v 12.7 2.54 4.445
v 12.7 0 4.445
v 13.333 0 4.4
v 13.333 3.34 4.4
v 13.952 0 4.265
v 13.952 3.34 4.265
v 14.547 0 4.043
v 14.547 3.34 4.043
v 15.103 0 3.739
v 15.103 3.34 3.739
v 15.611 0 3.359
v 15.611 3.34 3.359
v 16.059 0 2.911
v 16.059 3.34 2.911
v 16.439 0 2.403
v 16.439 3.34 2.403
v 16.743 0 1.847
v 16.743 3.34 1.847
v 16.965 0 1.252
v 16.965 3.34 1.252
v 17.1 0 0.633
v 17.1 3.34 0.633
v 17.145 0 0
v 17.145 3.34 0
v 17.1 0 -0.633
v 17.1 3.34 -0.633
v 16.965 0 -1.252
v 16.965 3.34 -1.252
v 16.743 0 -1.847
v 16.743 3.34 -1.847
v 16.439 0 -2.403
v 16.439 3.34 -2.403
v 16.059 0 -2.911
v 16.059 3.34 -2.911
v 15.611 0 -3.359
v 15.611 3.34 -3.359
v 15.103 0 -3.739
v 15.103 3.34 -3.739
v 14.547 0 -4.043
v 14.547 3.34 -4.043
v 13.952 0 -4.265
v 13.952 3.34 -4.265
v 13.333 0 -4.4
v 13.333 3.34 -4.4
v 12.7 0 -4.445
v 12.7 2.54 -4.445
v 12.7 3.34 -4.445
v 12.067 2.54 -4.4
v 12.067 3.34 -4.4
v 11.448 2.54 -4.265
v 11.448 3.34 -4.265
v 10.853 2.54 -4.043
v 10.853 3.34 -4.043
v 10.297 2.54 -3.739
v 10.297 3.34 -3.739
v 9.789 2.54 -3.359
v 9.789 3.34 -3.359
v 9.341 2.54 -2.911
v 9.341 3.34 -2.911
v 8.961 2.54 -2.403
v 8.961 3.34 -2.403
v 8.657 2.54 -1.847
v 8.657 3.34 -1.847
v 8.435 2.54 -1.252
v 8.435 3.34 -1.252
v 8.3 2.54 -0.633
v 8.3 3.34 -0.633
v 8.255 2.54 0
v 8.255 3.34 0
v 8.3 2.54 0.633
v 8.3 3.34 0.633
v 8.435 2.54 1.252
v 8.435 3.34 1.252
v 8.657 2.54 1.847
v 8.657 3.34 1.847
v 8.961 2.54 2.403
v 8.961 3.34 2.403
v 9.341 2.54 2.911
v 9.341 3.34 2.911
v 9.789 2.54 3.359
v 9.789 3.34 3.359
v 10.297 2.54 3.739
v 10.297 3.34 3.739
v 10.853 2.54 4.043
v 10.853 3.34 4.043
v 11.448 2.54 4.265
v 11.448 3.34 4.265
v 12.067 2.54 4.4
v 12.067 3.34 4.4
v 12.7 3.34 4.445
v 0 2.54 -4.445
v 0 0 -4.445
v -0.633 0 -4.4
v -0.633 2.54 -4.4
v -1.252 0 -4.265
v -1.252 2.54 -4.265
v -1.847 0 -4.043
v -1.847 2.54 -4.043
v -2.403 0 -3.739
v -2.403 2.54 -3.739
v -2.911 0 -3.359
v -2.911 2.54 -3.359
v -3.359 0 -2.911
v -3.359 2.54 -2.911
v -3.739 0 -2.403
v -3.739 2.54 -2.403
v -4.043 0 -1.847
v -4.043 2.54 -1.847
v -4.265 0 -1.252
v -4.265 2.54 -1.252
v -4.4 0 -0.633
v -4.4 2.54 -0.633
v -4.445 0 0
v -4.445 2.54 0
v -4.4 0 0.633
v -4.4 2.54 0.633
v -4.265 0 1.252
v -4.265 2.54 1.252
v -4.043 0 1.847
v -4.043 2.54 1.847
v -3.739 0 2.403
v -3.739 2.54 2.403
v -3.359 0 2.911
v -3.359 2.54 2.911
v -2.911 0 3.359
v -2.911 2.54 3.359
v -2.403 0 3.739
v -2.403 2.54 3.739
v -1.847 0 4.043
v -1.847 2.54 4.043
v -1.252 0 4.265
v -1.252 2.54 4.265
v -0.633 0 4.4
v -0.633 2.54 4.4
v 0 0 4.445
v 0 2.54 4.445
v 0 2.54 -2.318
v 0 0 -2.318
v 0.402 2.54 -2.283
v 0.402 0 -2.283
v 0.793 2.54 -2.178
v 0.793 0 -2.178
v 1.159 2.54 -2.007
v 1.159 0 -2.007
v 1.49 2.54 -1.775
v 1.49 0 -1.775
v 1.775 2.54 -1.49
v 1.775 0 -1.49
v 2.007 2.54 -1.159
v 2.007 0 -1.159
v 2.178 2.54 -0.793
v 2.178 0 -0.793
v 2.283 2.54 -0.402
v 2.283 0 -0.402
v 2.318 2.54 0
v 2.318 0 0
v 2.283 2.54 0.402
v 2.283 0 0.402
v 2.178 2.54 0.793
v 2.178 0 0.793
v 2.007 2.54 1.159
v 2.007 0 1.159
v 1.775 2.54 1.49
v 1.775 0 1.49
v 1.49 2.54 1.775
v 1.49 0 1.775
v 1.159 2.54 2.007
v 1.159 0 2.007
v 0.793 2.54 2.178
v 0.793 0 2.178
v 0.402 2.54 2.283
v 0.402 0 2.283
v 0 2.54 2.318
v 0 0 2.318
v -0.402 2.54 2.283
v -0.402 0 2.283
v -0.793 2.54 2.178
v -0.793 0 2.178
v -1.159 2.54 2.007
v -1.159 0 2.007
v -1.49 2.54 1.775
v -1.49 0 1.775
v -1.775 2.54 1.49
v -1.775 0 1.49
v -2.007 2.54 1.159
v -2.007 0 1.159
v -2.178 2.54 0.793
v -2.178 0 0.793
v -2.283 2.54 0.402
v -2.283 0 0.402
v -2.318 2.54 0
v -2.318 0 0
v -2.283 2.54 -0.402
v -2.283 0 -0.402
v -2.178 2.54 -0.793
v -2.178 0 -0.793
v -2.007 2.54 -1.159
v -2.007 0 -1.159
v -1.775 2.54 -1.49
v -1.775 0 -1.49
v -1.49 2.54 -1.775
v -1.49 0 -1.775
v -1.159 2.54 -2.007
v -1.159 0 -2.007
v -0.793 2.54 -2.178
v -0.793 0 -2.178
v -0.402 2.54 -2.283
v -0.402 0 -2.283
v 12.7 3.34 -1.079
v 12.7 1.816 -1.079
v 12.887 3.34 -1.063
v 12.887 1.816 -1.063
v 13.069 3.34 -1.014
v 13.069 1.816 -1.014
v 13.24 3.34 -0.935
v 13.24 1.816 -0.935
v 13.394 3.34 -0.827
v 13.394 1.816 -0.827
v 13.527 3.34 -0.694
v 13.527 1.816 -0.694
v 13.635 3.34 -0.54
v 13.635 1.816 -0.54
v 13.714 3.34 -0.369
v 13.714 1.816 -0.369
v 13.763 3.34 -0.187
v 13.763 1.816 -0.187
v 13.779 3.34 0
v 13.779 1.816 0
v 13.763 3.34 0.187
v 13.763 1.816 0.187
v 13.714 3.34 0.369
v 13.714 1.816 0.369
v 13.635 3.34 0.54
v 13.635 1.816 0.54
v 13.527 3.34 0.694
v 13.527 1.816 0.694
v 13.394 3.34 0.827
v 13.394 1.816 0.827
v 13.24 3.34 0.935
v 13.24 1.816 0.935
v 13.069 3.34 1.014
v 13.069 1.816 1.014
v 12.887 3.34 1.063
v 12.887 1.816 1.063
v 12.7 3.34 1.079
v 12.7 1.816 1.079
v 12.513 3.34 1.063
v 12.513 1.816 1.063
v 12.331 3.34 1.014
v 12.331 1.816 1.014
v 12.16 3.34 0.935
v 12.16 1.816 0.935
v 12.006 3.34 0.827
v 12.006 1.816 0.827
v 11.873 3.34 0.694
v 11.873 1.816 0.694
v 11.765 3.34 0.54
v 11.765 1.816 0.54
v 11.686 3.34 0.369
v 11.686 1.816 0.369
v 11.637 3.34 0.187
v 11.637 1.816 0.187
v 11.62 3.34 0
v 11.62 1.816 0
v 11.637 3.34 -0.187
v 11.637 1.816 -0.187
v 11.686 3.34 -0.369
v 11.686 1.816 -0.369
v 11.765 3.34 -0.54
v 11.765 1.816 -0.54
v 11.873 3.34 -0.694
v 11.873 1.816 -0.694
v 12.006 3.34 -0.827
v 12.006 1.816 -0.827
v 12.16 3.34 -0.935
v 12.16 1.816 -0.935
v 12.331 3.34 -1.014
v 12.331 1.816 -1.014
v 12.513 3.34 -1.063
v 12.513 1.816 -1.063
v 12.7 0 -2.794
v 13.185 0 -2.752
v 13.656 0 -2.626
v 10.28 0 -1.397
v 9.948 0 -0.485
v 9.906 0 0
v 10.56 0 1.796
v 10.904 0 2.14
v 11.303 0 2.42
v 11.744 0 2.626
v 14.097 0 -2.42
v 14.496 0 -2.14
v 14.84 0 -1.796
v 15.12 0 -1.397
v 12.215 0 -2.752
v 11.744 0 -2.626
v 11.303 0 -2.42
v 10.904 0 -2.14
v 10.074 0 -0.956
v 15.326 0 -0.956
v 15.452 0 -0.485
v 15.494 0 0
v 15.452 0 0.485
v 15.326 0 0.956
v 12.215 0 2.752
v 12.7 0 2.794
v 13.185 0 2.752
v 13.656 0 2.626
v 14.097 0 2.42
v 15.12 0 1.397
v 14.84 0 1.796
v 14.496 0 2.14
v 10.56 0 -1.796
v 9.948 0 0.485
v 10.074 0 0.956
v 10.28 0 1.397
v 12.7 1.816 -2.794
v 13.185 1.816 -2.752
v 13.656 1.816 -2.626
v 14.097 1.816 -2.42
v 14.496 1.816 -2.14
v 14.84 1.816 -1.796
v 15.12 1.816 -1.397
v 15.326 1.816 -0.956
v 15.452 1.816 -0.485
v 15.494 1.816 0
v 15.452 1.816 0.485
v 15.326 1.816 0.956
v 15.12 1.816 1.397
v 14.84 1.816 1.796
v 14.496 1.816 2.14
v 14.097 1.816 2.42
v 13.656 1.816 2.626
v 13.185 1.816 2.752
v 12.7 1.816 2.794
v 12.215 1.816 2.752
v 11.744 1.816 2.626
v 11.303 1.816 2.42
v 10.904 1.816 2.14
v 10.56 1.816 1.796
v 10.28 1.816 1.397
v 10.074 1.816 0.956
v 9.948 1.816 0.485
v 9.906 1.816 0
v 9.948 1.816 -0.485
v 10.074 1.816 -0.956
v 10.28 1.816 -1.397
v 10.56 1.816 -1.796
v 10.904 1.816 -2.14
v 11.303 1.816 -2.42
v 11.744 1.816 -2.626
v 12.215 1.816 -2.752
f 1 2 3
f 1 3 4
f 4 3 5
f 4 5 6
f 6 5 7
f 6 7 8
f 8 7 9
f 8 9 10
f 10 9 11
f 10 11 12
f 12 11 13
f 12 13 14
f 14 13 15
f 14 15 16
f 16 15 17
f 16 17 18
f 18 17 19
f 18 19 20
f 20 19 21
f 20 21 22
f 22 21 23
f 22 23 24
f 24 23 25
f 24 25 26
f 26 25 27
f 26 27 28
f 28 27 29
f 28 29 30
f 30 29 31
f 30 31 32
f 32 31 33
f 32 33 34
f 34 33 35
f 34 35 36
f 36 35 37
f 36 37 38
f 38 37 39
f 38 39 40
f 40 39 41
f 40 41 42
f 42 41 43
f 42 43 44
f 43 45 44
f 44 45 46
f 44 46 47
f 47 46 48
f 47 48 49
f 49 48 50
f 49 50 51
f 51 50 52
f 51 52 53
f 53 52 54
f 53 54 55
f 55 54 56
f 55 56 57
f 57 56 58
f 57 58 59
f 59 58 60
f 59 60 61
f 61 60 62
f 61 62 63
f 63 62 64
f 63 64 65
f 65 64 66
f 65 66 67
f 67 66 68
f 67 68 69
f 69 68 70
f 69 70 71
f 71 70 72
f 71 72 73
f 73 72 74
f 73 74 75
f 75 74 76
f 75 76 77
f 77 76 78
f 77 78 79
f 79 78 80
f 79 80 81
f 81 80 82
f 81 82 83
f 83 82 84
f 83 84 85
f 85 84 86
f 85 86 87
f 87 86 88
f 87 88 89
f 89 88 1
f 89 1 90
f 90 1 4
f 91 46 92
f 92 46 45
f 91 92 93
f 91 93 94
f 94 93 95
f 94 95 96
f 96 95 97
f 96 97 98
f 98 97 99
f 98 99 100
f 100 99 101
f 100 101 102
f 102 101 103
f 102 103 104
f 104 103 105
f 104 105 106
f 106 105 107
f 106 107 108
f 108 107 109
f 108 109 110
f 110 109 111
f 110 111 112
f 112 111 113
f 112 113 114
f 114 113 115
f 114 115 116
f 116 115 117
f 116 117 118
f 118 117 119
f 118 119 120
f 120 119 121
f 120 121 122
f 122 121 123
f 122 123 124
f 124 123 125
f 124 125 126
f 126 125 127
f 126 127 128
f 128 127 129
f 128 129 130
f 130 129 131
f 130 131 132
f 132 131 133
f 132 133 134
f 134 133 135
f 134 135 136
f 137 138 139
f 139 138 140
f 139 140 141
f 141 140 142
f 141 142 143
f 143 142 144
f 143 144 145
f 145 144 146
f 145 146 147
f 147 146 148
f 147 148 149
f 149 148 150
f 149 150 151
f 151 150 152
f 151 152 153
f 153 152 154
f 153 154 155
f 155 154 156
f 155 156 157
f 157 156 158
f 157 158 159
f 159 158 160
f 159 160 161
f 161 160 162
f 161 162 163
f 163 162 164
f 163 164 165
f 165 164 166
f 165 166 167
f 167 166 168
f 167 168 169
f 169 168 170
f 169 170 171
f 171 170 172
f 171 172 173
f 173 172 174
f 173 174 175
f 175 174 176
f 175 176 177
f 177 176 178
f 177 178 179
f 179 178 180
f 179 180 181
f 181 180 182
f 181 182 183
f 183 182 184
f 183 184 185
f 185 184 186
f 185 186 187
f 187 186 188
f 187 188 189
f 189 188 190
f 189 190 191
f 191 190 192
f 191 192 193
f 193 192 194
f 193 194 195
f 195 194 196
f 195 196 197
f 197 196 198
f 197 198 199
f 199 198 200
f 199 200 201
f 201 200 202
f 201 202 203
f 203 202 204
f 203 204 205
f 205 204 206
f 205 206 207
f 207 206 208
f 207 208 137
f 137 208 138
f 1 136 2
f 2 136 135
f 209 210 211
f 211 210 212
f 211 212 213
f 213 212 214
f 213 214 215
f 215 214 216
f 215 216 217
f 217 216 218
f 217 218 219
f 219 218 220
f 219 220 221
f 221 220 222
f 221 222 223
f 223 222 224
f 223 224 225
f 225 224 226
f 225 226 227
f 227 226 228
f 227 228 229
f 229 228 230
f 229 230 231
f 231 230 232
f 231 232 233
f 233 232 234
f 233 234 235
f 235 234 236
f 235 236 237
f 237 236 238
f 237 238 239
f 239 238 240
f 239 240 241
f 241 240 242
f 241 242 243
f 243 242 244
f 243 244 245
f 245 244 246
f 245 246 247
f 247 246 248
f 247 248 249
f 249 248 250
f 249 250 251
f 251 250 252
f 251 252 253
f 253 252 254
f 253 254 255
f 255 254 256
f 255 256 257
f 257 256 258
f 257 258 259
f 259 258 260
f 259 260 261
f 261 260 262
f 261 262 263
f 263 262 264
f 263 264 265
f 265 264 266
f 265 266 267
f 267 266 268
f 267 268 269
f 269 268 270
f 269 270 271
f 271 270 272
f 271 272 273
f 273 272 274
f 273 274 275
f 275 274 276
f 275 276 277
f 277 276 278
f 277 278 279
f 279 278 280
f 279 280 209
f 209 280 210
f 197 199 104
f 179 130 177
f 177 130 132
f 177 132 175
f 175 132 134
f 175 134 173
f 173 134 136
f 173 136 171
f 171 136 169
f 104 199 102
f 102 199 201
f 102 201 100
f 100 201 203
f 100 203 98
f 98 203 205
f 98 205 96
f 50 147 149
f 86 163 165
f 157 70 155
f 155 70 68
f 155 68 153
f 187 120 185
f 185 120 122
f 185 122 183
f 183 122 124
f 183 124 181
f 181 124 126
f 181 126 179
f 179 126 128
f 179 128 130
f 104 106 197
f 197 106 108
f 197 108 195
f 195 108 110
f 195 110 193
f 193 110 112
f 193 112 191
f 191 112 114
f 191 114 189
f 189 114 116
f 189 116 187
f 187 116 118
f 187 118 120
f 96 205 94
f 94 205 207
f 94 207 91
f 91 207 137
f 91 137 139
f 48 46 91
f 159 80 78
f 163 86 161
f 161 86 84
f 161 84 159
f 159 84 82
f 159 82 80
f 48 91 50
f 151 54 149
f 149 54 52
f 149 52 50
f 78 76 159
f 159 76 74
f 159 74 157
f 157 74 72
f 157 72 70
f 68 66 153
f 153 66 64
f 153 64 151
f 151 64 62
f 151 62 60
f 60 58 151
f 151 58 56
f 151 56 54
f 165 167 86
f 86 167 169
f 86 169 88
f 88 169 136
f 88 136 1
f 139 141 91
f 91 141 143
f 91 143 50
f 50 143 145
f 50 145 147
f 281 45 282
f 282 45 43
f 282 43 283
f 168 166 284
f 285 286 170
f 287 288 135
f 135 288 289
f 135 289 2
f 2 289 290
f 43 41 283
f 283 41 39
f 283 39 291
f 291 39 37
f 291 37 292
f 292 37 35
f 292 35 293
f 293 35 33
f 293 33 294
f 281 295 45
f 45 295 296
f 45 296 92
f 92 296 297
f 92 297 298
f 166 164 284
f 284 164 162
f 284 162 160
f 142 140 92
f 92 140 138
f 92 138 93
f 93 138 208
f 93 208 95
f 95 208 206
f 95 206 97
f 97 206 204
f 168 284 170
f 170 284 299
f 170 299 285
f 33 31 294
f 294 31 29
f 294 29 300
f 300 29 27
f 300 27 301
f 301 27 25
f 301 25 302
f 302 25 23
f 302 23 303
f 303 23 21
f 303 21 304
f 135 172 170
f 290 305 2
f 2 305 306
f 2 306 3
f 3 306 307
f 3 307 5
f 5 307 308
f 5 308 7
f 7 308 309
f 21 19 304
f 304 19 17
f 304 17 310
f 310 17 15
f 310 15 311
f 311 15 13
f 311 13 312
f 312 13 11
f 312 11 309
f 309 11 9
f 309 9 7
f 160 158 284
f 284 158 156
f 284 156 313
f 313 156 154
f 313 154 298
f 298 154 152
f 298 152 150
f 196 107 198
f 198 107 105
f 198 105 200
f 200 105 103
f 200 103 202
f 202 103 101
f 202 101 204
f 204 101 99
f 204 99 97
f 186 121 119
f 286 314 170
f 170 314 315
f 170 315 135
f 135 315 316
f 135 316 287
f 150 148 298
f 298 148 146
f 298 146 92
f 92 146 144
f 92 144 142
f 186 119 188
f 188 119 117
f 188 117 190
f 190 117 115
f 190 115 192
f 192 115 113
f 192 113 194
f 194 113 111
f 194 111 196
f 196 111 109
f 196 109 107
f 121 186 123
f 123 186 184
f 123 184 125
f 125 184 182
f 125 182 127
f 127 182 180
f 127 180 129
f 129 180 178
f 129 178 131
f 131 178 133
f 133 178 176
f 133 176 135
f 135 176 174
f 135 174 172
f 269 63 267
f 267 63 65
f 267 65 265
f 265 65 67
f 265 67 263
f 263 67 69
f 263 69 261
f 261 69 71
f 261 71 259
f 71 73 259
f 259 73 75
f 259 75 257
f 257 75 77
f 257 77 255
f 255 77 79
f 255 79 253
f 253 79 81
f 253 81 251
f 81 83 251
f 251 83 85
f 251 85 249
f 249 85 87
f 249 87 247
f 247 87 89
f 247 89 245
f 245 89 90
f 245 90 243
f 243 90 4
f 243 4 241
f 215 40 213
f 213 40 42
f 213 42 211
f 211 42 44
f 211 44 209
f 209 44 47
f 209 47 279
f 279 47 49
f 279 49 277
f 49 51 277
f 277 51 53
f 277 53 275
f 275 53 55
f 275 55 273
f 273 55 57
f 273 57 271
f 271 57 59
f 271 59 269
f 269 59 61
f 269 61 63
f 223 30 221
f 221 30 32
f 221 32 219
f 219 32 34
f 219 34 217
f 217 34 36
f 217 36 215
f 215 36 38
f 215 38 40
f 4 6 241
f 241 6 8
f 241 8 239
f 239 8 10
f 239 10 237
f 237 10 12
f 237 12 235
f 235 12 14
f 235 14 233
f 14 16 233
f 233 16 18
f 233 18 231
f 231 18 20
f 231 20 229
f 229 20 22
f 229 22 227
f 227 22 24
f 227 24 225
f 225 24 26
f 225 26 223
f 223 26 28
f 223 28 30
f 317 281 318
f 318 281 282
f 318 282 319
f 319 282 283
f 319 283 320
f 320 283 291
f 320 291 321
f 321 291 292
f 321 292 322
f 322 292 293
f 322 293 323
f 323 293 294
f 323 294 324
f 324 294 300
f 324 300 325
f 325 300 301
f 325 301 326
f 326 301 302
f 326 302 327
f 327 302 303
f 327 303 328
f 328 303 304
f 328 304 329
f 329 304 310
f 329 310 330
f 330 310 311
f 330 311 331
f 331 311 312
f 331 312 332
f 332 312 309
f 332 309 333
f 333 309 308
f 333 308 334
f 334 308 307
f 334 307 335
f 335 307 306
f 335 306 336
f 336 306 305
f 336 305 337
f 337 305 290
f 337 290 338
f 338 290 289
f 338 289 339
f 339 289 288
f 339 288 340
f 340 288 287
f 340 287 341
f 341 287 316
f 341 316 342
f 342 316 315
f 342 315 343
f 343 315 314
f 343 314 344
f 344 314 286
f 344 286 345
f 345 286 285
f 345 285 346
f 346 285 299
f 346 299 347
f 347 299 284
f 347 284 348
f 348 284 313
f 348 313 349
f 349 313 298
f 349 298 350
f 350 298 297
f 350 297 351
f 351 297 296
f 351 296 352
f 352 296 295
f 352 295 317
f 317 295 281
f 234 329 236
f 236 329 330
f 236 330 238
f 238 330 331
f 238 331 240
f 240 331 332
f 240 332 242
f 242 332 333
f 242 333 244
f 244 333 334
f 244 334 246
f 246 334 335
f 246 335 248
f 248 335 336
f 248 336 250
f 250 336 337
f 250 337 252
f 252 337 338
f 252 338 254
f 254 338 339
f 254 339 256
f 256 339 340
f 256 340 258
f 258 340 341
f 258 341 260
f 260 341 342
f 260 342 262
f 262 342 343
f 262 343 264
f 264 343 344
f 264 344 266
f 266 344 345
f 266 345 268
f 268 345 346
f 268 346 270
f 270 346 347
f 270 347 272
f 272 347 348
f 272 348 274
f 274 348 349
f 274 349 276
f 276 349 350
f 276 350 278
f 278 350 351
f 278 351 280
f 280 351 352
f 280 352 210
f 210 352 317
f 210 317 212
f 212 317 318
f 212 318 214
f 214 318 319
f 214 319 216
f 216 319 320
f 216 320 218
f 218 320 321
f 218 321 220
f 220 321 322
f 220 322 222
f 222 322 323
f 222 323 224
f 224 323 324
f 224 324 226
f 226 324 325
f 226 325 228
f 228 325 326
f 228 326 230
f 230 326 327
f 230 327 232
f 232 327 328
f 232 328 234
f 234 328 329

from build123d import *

# Parameters (mm, degrees)
SKETCH1_R             = 2.31775
SKETCH1_R_2           = 1.0795
BASE_EXTRUDE_DEPTH    = 2.54
SKETCH2_R             = 4.445
SKETCH2_R_2           = 1.0795
SERVO_EXTRUDE_DEPTH   = 0.8
SKETCH3_R             = 2.794
SKETCH3_R_2           = 1.0795
SERVO_MOUNT_CUT_DEPTH = 1.816


with BuildPart() as part:
    # Sketch1 → Base Extrude (new body)
    with BuildSketch(Plane(origin=(0, 0, 0), x_dir=(1, 0, 0), z_dir=(0, 1, 0))):
        with BuildLine():
            ThreePointArc((0, 4.445), (-4.445, 0), (0, -4.445))
            Line((0, -4.445), (12.7, -4.445))
            ThreePointArc((12.7, -4.445), (17.145, 0), (12.7, 4.445))
            Line((12.7, 4.445), (0, 4.445))
        make_face()
        with Locations(Location((0, 0, 0), (0, 0, 270))):
            Circle(SKETCH1_R, mode=Mode.SUBTRACT)
        with Locations(Location((12.7, 0, 0), (0, 0, 270))):
            Circle(SKETCH1_R_2, mode=Mode.SUBTRACT)
    extrude(amount=BASE_EXTRUDE_DEPTH)

    # Sketch2 → Servo Extrude (add)
    with BuildSketch(Plane(origin=(0, 2.54, 0), x_dir=(1, 0, 0), z_dir=(0, 1, 0))):
        with Locations(Location((12.7, 0, 0), (0, 0, 270))):
            Circle(SKETCH2_R)
        with Locations(Location((12.7, 0, 0), (0, 0, 270))):
            Circle(SKETCH2_R_2, mode=Mode.SUBTRACT)
    extrude(amount=SERVO_EXTRUDE_DEPTH)

    # Sketch3 → Servo Mount Cut (cut)
    with BuildSketch(Plane.XZ):
        with Locations(Location((12.7, 0, 0), (0, 0, 270))):
            Circle(SKETCH3_R)
        with Locations(Location((12.7, 0, 0), (0, 0, 90))):
            Circle(SKETCH3_R_2, mode=Mode.SUBTRACT)
    extrude(amount=-SERVO_MOUNT_CUT_DEPTH, mode=Mode.SUBTRACT)


solid = part.part
